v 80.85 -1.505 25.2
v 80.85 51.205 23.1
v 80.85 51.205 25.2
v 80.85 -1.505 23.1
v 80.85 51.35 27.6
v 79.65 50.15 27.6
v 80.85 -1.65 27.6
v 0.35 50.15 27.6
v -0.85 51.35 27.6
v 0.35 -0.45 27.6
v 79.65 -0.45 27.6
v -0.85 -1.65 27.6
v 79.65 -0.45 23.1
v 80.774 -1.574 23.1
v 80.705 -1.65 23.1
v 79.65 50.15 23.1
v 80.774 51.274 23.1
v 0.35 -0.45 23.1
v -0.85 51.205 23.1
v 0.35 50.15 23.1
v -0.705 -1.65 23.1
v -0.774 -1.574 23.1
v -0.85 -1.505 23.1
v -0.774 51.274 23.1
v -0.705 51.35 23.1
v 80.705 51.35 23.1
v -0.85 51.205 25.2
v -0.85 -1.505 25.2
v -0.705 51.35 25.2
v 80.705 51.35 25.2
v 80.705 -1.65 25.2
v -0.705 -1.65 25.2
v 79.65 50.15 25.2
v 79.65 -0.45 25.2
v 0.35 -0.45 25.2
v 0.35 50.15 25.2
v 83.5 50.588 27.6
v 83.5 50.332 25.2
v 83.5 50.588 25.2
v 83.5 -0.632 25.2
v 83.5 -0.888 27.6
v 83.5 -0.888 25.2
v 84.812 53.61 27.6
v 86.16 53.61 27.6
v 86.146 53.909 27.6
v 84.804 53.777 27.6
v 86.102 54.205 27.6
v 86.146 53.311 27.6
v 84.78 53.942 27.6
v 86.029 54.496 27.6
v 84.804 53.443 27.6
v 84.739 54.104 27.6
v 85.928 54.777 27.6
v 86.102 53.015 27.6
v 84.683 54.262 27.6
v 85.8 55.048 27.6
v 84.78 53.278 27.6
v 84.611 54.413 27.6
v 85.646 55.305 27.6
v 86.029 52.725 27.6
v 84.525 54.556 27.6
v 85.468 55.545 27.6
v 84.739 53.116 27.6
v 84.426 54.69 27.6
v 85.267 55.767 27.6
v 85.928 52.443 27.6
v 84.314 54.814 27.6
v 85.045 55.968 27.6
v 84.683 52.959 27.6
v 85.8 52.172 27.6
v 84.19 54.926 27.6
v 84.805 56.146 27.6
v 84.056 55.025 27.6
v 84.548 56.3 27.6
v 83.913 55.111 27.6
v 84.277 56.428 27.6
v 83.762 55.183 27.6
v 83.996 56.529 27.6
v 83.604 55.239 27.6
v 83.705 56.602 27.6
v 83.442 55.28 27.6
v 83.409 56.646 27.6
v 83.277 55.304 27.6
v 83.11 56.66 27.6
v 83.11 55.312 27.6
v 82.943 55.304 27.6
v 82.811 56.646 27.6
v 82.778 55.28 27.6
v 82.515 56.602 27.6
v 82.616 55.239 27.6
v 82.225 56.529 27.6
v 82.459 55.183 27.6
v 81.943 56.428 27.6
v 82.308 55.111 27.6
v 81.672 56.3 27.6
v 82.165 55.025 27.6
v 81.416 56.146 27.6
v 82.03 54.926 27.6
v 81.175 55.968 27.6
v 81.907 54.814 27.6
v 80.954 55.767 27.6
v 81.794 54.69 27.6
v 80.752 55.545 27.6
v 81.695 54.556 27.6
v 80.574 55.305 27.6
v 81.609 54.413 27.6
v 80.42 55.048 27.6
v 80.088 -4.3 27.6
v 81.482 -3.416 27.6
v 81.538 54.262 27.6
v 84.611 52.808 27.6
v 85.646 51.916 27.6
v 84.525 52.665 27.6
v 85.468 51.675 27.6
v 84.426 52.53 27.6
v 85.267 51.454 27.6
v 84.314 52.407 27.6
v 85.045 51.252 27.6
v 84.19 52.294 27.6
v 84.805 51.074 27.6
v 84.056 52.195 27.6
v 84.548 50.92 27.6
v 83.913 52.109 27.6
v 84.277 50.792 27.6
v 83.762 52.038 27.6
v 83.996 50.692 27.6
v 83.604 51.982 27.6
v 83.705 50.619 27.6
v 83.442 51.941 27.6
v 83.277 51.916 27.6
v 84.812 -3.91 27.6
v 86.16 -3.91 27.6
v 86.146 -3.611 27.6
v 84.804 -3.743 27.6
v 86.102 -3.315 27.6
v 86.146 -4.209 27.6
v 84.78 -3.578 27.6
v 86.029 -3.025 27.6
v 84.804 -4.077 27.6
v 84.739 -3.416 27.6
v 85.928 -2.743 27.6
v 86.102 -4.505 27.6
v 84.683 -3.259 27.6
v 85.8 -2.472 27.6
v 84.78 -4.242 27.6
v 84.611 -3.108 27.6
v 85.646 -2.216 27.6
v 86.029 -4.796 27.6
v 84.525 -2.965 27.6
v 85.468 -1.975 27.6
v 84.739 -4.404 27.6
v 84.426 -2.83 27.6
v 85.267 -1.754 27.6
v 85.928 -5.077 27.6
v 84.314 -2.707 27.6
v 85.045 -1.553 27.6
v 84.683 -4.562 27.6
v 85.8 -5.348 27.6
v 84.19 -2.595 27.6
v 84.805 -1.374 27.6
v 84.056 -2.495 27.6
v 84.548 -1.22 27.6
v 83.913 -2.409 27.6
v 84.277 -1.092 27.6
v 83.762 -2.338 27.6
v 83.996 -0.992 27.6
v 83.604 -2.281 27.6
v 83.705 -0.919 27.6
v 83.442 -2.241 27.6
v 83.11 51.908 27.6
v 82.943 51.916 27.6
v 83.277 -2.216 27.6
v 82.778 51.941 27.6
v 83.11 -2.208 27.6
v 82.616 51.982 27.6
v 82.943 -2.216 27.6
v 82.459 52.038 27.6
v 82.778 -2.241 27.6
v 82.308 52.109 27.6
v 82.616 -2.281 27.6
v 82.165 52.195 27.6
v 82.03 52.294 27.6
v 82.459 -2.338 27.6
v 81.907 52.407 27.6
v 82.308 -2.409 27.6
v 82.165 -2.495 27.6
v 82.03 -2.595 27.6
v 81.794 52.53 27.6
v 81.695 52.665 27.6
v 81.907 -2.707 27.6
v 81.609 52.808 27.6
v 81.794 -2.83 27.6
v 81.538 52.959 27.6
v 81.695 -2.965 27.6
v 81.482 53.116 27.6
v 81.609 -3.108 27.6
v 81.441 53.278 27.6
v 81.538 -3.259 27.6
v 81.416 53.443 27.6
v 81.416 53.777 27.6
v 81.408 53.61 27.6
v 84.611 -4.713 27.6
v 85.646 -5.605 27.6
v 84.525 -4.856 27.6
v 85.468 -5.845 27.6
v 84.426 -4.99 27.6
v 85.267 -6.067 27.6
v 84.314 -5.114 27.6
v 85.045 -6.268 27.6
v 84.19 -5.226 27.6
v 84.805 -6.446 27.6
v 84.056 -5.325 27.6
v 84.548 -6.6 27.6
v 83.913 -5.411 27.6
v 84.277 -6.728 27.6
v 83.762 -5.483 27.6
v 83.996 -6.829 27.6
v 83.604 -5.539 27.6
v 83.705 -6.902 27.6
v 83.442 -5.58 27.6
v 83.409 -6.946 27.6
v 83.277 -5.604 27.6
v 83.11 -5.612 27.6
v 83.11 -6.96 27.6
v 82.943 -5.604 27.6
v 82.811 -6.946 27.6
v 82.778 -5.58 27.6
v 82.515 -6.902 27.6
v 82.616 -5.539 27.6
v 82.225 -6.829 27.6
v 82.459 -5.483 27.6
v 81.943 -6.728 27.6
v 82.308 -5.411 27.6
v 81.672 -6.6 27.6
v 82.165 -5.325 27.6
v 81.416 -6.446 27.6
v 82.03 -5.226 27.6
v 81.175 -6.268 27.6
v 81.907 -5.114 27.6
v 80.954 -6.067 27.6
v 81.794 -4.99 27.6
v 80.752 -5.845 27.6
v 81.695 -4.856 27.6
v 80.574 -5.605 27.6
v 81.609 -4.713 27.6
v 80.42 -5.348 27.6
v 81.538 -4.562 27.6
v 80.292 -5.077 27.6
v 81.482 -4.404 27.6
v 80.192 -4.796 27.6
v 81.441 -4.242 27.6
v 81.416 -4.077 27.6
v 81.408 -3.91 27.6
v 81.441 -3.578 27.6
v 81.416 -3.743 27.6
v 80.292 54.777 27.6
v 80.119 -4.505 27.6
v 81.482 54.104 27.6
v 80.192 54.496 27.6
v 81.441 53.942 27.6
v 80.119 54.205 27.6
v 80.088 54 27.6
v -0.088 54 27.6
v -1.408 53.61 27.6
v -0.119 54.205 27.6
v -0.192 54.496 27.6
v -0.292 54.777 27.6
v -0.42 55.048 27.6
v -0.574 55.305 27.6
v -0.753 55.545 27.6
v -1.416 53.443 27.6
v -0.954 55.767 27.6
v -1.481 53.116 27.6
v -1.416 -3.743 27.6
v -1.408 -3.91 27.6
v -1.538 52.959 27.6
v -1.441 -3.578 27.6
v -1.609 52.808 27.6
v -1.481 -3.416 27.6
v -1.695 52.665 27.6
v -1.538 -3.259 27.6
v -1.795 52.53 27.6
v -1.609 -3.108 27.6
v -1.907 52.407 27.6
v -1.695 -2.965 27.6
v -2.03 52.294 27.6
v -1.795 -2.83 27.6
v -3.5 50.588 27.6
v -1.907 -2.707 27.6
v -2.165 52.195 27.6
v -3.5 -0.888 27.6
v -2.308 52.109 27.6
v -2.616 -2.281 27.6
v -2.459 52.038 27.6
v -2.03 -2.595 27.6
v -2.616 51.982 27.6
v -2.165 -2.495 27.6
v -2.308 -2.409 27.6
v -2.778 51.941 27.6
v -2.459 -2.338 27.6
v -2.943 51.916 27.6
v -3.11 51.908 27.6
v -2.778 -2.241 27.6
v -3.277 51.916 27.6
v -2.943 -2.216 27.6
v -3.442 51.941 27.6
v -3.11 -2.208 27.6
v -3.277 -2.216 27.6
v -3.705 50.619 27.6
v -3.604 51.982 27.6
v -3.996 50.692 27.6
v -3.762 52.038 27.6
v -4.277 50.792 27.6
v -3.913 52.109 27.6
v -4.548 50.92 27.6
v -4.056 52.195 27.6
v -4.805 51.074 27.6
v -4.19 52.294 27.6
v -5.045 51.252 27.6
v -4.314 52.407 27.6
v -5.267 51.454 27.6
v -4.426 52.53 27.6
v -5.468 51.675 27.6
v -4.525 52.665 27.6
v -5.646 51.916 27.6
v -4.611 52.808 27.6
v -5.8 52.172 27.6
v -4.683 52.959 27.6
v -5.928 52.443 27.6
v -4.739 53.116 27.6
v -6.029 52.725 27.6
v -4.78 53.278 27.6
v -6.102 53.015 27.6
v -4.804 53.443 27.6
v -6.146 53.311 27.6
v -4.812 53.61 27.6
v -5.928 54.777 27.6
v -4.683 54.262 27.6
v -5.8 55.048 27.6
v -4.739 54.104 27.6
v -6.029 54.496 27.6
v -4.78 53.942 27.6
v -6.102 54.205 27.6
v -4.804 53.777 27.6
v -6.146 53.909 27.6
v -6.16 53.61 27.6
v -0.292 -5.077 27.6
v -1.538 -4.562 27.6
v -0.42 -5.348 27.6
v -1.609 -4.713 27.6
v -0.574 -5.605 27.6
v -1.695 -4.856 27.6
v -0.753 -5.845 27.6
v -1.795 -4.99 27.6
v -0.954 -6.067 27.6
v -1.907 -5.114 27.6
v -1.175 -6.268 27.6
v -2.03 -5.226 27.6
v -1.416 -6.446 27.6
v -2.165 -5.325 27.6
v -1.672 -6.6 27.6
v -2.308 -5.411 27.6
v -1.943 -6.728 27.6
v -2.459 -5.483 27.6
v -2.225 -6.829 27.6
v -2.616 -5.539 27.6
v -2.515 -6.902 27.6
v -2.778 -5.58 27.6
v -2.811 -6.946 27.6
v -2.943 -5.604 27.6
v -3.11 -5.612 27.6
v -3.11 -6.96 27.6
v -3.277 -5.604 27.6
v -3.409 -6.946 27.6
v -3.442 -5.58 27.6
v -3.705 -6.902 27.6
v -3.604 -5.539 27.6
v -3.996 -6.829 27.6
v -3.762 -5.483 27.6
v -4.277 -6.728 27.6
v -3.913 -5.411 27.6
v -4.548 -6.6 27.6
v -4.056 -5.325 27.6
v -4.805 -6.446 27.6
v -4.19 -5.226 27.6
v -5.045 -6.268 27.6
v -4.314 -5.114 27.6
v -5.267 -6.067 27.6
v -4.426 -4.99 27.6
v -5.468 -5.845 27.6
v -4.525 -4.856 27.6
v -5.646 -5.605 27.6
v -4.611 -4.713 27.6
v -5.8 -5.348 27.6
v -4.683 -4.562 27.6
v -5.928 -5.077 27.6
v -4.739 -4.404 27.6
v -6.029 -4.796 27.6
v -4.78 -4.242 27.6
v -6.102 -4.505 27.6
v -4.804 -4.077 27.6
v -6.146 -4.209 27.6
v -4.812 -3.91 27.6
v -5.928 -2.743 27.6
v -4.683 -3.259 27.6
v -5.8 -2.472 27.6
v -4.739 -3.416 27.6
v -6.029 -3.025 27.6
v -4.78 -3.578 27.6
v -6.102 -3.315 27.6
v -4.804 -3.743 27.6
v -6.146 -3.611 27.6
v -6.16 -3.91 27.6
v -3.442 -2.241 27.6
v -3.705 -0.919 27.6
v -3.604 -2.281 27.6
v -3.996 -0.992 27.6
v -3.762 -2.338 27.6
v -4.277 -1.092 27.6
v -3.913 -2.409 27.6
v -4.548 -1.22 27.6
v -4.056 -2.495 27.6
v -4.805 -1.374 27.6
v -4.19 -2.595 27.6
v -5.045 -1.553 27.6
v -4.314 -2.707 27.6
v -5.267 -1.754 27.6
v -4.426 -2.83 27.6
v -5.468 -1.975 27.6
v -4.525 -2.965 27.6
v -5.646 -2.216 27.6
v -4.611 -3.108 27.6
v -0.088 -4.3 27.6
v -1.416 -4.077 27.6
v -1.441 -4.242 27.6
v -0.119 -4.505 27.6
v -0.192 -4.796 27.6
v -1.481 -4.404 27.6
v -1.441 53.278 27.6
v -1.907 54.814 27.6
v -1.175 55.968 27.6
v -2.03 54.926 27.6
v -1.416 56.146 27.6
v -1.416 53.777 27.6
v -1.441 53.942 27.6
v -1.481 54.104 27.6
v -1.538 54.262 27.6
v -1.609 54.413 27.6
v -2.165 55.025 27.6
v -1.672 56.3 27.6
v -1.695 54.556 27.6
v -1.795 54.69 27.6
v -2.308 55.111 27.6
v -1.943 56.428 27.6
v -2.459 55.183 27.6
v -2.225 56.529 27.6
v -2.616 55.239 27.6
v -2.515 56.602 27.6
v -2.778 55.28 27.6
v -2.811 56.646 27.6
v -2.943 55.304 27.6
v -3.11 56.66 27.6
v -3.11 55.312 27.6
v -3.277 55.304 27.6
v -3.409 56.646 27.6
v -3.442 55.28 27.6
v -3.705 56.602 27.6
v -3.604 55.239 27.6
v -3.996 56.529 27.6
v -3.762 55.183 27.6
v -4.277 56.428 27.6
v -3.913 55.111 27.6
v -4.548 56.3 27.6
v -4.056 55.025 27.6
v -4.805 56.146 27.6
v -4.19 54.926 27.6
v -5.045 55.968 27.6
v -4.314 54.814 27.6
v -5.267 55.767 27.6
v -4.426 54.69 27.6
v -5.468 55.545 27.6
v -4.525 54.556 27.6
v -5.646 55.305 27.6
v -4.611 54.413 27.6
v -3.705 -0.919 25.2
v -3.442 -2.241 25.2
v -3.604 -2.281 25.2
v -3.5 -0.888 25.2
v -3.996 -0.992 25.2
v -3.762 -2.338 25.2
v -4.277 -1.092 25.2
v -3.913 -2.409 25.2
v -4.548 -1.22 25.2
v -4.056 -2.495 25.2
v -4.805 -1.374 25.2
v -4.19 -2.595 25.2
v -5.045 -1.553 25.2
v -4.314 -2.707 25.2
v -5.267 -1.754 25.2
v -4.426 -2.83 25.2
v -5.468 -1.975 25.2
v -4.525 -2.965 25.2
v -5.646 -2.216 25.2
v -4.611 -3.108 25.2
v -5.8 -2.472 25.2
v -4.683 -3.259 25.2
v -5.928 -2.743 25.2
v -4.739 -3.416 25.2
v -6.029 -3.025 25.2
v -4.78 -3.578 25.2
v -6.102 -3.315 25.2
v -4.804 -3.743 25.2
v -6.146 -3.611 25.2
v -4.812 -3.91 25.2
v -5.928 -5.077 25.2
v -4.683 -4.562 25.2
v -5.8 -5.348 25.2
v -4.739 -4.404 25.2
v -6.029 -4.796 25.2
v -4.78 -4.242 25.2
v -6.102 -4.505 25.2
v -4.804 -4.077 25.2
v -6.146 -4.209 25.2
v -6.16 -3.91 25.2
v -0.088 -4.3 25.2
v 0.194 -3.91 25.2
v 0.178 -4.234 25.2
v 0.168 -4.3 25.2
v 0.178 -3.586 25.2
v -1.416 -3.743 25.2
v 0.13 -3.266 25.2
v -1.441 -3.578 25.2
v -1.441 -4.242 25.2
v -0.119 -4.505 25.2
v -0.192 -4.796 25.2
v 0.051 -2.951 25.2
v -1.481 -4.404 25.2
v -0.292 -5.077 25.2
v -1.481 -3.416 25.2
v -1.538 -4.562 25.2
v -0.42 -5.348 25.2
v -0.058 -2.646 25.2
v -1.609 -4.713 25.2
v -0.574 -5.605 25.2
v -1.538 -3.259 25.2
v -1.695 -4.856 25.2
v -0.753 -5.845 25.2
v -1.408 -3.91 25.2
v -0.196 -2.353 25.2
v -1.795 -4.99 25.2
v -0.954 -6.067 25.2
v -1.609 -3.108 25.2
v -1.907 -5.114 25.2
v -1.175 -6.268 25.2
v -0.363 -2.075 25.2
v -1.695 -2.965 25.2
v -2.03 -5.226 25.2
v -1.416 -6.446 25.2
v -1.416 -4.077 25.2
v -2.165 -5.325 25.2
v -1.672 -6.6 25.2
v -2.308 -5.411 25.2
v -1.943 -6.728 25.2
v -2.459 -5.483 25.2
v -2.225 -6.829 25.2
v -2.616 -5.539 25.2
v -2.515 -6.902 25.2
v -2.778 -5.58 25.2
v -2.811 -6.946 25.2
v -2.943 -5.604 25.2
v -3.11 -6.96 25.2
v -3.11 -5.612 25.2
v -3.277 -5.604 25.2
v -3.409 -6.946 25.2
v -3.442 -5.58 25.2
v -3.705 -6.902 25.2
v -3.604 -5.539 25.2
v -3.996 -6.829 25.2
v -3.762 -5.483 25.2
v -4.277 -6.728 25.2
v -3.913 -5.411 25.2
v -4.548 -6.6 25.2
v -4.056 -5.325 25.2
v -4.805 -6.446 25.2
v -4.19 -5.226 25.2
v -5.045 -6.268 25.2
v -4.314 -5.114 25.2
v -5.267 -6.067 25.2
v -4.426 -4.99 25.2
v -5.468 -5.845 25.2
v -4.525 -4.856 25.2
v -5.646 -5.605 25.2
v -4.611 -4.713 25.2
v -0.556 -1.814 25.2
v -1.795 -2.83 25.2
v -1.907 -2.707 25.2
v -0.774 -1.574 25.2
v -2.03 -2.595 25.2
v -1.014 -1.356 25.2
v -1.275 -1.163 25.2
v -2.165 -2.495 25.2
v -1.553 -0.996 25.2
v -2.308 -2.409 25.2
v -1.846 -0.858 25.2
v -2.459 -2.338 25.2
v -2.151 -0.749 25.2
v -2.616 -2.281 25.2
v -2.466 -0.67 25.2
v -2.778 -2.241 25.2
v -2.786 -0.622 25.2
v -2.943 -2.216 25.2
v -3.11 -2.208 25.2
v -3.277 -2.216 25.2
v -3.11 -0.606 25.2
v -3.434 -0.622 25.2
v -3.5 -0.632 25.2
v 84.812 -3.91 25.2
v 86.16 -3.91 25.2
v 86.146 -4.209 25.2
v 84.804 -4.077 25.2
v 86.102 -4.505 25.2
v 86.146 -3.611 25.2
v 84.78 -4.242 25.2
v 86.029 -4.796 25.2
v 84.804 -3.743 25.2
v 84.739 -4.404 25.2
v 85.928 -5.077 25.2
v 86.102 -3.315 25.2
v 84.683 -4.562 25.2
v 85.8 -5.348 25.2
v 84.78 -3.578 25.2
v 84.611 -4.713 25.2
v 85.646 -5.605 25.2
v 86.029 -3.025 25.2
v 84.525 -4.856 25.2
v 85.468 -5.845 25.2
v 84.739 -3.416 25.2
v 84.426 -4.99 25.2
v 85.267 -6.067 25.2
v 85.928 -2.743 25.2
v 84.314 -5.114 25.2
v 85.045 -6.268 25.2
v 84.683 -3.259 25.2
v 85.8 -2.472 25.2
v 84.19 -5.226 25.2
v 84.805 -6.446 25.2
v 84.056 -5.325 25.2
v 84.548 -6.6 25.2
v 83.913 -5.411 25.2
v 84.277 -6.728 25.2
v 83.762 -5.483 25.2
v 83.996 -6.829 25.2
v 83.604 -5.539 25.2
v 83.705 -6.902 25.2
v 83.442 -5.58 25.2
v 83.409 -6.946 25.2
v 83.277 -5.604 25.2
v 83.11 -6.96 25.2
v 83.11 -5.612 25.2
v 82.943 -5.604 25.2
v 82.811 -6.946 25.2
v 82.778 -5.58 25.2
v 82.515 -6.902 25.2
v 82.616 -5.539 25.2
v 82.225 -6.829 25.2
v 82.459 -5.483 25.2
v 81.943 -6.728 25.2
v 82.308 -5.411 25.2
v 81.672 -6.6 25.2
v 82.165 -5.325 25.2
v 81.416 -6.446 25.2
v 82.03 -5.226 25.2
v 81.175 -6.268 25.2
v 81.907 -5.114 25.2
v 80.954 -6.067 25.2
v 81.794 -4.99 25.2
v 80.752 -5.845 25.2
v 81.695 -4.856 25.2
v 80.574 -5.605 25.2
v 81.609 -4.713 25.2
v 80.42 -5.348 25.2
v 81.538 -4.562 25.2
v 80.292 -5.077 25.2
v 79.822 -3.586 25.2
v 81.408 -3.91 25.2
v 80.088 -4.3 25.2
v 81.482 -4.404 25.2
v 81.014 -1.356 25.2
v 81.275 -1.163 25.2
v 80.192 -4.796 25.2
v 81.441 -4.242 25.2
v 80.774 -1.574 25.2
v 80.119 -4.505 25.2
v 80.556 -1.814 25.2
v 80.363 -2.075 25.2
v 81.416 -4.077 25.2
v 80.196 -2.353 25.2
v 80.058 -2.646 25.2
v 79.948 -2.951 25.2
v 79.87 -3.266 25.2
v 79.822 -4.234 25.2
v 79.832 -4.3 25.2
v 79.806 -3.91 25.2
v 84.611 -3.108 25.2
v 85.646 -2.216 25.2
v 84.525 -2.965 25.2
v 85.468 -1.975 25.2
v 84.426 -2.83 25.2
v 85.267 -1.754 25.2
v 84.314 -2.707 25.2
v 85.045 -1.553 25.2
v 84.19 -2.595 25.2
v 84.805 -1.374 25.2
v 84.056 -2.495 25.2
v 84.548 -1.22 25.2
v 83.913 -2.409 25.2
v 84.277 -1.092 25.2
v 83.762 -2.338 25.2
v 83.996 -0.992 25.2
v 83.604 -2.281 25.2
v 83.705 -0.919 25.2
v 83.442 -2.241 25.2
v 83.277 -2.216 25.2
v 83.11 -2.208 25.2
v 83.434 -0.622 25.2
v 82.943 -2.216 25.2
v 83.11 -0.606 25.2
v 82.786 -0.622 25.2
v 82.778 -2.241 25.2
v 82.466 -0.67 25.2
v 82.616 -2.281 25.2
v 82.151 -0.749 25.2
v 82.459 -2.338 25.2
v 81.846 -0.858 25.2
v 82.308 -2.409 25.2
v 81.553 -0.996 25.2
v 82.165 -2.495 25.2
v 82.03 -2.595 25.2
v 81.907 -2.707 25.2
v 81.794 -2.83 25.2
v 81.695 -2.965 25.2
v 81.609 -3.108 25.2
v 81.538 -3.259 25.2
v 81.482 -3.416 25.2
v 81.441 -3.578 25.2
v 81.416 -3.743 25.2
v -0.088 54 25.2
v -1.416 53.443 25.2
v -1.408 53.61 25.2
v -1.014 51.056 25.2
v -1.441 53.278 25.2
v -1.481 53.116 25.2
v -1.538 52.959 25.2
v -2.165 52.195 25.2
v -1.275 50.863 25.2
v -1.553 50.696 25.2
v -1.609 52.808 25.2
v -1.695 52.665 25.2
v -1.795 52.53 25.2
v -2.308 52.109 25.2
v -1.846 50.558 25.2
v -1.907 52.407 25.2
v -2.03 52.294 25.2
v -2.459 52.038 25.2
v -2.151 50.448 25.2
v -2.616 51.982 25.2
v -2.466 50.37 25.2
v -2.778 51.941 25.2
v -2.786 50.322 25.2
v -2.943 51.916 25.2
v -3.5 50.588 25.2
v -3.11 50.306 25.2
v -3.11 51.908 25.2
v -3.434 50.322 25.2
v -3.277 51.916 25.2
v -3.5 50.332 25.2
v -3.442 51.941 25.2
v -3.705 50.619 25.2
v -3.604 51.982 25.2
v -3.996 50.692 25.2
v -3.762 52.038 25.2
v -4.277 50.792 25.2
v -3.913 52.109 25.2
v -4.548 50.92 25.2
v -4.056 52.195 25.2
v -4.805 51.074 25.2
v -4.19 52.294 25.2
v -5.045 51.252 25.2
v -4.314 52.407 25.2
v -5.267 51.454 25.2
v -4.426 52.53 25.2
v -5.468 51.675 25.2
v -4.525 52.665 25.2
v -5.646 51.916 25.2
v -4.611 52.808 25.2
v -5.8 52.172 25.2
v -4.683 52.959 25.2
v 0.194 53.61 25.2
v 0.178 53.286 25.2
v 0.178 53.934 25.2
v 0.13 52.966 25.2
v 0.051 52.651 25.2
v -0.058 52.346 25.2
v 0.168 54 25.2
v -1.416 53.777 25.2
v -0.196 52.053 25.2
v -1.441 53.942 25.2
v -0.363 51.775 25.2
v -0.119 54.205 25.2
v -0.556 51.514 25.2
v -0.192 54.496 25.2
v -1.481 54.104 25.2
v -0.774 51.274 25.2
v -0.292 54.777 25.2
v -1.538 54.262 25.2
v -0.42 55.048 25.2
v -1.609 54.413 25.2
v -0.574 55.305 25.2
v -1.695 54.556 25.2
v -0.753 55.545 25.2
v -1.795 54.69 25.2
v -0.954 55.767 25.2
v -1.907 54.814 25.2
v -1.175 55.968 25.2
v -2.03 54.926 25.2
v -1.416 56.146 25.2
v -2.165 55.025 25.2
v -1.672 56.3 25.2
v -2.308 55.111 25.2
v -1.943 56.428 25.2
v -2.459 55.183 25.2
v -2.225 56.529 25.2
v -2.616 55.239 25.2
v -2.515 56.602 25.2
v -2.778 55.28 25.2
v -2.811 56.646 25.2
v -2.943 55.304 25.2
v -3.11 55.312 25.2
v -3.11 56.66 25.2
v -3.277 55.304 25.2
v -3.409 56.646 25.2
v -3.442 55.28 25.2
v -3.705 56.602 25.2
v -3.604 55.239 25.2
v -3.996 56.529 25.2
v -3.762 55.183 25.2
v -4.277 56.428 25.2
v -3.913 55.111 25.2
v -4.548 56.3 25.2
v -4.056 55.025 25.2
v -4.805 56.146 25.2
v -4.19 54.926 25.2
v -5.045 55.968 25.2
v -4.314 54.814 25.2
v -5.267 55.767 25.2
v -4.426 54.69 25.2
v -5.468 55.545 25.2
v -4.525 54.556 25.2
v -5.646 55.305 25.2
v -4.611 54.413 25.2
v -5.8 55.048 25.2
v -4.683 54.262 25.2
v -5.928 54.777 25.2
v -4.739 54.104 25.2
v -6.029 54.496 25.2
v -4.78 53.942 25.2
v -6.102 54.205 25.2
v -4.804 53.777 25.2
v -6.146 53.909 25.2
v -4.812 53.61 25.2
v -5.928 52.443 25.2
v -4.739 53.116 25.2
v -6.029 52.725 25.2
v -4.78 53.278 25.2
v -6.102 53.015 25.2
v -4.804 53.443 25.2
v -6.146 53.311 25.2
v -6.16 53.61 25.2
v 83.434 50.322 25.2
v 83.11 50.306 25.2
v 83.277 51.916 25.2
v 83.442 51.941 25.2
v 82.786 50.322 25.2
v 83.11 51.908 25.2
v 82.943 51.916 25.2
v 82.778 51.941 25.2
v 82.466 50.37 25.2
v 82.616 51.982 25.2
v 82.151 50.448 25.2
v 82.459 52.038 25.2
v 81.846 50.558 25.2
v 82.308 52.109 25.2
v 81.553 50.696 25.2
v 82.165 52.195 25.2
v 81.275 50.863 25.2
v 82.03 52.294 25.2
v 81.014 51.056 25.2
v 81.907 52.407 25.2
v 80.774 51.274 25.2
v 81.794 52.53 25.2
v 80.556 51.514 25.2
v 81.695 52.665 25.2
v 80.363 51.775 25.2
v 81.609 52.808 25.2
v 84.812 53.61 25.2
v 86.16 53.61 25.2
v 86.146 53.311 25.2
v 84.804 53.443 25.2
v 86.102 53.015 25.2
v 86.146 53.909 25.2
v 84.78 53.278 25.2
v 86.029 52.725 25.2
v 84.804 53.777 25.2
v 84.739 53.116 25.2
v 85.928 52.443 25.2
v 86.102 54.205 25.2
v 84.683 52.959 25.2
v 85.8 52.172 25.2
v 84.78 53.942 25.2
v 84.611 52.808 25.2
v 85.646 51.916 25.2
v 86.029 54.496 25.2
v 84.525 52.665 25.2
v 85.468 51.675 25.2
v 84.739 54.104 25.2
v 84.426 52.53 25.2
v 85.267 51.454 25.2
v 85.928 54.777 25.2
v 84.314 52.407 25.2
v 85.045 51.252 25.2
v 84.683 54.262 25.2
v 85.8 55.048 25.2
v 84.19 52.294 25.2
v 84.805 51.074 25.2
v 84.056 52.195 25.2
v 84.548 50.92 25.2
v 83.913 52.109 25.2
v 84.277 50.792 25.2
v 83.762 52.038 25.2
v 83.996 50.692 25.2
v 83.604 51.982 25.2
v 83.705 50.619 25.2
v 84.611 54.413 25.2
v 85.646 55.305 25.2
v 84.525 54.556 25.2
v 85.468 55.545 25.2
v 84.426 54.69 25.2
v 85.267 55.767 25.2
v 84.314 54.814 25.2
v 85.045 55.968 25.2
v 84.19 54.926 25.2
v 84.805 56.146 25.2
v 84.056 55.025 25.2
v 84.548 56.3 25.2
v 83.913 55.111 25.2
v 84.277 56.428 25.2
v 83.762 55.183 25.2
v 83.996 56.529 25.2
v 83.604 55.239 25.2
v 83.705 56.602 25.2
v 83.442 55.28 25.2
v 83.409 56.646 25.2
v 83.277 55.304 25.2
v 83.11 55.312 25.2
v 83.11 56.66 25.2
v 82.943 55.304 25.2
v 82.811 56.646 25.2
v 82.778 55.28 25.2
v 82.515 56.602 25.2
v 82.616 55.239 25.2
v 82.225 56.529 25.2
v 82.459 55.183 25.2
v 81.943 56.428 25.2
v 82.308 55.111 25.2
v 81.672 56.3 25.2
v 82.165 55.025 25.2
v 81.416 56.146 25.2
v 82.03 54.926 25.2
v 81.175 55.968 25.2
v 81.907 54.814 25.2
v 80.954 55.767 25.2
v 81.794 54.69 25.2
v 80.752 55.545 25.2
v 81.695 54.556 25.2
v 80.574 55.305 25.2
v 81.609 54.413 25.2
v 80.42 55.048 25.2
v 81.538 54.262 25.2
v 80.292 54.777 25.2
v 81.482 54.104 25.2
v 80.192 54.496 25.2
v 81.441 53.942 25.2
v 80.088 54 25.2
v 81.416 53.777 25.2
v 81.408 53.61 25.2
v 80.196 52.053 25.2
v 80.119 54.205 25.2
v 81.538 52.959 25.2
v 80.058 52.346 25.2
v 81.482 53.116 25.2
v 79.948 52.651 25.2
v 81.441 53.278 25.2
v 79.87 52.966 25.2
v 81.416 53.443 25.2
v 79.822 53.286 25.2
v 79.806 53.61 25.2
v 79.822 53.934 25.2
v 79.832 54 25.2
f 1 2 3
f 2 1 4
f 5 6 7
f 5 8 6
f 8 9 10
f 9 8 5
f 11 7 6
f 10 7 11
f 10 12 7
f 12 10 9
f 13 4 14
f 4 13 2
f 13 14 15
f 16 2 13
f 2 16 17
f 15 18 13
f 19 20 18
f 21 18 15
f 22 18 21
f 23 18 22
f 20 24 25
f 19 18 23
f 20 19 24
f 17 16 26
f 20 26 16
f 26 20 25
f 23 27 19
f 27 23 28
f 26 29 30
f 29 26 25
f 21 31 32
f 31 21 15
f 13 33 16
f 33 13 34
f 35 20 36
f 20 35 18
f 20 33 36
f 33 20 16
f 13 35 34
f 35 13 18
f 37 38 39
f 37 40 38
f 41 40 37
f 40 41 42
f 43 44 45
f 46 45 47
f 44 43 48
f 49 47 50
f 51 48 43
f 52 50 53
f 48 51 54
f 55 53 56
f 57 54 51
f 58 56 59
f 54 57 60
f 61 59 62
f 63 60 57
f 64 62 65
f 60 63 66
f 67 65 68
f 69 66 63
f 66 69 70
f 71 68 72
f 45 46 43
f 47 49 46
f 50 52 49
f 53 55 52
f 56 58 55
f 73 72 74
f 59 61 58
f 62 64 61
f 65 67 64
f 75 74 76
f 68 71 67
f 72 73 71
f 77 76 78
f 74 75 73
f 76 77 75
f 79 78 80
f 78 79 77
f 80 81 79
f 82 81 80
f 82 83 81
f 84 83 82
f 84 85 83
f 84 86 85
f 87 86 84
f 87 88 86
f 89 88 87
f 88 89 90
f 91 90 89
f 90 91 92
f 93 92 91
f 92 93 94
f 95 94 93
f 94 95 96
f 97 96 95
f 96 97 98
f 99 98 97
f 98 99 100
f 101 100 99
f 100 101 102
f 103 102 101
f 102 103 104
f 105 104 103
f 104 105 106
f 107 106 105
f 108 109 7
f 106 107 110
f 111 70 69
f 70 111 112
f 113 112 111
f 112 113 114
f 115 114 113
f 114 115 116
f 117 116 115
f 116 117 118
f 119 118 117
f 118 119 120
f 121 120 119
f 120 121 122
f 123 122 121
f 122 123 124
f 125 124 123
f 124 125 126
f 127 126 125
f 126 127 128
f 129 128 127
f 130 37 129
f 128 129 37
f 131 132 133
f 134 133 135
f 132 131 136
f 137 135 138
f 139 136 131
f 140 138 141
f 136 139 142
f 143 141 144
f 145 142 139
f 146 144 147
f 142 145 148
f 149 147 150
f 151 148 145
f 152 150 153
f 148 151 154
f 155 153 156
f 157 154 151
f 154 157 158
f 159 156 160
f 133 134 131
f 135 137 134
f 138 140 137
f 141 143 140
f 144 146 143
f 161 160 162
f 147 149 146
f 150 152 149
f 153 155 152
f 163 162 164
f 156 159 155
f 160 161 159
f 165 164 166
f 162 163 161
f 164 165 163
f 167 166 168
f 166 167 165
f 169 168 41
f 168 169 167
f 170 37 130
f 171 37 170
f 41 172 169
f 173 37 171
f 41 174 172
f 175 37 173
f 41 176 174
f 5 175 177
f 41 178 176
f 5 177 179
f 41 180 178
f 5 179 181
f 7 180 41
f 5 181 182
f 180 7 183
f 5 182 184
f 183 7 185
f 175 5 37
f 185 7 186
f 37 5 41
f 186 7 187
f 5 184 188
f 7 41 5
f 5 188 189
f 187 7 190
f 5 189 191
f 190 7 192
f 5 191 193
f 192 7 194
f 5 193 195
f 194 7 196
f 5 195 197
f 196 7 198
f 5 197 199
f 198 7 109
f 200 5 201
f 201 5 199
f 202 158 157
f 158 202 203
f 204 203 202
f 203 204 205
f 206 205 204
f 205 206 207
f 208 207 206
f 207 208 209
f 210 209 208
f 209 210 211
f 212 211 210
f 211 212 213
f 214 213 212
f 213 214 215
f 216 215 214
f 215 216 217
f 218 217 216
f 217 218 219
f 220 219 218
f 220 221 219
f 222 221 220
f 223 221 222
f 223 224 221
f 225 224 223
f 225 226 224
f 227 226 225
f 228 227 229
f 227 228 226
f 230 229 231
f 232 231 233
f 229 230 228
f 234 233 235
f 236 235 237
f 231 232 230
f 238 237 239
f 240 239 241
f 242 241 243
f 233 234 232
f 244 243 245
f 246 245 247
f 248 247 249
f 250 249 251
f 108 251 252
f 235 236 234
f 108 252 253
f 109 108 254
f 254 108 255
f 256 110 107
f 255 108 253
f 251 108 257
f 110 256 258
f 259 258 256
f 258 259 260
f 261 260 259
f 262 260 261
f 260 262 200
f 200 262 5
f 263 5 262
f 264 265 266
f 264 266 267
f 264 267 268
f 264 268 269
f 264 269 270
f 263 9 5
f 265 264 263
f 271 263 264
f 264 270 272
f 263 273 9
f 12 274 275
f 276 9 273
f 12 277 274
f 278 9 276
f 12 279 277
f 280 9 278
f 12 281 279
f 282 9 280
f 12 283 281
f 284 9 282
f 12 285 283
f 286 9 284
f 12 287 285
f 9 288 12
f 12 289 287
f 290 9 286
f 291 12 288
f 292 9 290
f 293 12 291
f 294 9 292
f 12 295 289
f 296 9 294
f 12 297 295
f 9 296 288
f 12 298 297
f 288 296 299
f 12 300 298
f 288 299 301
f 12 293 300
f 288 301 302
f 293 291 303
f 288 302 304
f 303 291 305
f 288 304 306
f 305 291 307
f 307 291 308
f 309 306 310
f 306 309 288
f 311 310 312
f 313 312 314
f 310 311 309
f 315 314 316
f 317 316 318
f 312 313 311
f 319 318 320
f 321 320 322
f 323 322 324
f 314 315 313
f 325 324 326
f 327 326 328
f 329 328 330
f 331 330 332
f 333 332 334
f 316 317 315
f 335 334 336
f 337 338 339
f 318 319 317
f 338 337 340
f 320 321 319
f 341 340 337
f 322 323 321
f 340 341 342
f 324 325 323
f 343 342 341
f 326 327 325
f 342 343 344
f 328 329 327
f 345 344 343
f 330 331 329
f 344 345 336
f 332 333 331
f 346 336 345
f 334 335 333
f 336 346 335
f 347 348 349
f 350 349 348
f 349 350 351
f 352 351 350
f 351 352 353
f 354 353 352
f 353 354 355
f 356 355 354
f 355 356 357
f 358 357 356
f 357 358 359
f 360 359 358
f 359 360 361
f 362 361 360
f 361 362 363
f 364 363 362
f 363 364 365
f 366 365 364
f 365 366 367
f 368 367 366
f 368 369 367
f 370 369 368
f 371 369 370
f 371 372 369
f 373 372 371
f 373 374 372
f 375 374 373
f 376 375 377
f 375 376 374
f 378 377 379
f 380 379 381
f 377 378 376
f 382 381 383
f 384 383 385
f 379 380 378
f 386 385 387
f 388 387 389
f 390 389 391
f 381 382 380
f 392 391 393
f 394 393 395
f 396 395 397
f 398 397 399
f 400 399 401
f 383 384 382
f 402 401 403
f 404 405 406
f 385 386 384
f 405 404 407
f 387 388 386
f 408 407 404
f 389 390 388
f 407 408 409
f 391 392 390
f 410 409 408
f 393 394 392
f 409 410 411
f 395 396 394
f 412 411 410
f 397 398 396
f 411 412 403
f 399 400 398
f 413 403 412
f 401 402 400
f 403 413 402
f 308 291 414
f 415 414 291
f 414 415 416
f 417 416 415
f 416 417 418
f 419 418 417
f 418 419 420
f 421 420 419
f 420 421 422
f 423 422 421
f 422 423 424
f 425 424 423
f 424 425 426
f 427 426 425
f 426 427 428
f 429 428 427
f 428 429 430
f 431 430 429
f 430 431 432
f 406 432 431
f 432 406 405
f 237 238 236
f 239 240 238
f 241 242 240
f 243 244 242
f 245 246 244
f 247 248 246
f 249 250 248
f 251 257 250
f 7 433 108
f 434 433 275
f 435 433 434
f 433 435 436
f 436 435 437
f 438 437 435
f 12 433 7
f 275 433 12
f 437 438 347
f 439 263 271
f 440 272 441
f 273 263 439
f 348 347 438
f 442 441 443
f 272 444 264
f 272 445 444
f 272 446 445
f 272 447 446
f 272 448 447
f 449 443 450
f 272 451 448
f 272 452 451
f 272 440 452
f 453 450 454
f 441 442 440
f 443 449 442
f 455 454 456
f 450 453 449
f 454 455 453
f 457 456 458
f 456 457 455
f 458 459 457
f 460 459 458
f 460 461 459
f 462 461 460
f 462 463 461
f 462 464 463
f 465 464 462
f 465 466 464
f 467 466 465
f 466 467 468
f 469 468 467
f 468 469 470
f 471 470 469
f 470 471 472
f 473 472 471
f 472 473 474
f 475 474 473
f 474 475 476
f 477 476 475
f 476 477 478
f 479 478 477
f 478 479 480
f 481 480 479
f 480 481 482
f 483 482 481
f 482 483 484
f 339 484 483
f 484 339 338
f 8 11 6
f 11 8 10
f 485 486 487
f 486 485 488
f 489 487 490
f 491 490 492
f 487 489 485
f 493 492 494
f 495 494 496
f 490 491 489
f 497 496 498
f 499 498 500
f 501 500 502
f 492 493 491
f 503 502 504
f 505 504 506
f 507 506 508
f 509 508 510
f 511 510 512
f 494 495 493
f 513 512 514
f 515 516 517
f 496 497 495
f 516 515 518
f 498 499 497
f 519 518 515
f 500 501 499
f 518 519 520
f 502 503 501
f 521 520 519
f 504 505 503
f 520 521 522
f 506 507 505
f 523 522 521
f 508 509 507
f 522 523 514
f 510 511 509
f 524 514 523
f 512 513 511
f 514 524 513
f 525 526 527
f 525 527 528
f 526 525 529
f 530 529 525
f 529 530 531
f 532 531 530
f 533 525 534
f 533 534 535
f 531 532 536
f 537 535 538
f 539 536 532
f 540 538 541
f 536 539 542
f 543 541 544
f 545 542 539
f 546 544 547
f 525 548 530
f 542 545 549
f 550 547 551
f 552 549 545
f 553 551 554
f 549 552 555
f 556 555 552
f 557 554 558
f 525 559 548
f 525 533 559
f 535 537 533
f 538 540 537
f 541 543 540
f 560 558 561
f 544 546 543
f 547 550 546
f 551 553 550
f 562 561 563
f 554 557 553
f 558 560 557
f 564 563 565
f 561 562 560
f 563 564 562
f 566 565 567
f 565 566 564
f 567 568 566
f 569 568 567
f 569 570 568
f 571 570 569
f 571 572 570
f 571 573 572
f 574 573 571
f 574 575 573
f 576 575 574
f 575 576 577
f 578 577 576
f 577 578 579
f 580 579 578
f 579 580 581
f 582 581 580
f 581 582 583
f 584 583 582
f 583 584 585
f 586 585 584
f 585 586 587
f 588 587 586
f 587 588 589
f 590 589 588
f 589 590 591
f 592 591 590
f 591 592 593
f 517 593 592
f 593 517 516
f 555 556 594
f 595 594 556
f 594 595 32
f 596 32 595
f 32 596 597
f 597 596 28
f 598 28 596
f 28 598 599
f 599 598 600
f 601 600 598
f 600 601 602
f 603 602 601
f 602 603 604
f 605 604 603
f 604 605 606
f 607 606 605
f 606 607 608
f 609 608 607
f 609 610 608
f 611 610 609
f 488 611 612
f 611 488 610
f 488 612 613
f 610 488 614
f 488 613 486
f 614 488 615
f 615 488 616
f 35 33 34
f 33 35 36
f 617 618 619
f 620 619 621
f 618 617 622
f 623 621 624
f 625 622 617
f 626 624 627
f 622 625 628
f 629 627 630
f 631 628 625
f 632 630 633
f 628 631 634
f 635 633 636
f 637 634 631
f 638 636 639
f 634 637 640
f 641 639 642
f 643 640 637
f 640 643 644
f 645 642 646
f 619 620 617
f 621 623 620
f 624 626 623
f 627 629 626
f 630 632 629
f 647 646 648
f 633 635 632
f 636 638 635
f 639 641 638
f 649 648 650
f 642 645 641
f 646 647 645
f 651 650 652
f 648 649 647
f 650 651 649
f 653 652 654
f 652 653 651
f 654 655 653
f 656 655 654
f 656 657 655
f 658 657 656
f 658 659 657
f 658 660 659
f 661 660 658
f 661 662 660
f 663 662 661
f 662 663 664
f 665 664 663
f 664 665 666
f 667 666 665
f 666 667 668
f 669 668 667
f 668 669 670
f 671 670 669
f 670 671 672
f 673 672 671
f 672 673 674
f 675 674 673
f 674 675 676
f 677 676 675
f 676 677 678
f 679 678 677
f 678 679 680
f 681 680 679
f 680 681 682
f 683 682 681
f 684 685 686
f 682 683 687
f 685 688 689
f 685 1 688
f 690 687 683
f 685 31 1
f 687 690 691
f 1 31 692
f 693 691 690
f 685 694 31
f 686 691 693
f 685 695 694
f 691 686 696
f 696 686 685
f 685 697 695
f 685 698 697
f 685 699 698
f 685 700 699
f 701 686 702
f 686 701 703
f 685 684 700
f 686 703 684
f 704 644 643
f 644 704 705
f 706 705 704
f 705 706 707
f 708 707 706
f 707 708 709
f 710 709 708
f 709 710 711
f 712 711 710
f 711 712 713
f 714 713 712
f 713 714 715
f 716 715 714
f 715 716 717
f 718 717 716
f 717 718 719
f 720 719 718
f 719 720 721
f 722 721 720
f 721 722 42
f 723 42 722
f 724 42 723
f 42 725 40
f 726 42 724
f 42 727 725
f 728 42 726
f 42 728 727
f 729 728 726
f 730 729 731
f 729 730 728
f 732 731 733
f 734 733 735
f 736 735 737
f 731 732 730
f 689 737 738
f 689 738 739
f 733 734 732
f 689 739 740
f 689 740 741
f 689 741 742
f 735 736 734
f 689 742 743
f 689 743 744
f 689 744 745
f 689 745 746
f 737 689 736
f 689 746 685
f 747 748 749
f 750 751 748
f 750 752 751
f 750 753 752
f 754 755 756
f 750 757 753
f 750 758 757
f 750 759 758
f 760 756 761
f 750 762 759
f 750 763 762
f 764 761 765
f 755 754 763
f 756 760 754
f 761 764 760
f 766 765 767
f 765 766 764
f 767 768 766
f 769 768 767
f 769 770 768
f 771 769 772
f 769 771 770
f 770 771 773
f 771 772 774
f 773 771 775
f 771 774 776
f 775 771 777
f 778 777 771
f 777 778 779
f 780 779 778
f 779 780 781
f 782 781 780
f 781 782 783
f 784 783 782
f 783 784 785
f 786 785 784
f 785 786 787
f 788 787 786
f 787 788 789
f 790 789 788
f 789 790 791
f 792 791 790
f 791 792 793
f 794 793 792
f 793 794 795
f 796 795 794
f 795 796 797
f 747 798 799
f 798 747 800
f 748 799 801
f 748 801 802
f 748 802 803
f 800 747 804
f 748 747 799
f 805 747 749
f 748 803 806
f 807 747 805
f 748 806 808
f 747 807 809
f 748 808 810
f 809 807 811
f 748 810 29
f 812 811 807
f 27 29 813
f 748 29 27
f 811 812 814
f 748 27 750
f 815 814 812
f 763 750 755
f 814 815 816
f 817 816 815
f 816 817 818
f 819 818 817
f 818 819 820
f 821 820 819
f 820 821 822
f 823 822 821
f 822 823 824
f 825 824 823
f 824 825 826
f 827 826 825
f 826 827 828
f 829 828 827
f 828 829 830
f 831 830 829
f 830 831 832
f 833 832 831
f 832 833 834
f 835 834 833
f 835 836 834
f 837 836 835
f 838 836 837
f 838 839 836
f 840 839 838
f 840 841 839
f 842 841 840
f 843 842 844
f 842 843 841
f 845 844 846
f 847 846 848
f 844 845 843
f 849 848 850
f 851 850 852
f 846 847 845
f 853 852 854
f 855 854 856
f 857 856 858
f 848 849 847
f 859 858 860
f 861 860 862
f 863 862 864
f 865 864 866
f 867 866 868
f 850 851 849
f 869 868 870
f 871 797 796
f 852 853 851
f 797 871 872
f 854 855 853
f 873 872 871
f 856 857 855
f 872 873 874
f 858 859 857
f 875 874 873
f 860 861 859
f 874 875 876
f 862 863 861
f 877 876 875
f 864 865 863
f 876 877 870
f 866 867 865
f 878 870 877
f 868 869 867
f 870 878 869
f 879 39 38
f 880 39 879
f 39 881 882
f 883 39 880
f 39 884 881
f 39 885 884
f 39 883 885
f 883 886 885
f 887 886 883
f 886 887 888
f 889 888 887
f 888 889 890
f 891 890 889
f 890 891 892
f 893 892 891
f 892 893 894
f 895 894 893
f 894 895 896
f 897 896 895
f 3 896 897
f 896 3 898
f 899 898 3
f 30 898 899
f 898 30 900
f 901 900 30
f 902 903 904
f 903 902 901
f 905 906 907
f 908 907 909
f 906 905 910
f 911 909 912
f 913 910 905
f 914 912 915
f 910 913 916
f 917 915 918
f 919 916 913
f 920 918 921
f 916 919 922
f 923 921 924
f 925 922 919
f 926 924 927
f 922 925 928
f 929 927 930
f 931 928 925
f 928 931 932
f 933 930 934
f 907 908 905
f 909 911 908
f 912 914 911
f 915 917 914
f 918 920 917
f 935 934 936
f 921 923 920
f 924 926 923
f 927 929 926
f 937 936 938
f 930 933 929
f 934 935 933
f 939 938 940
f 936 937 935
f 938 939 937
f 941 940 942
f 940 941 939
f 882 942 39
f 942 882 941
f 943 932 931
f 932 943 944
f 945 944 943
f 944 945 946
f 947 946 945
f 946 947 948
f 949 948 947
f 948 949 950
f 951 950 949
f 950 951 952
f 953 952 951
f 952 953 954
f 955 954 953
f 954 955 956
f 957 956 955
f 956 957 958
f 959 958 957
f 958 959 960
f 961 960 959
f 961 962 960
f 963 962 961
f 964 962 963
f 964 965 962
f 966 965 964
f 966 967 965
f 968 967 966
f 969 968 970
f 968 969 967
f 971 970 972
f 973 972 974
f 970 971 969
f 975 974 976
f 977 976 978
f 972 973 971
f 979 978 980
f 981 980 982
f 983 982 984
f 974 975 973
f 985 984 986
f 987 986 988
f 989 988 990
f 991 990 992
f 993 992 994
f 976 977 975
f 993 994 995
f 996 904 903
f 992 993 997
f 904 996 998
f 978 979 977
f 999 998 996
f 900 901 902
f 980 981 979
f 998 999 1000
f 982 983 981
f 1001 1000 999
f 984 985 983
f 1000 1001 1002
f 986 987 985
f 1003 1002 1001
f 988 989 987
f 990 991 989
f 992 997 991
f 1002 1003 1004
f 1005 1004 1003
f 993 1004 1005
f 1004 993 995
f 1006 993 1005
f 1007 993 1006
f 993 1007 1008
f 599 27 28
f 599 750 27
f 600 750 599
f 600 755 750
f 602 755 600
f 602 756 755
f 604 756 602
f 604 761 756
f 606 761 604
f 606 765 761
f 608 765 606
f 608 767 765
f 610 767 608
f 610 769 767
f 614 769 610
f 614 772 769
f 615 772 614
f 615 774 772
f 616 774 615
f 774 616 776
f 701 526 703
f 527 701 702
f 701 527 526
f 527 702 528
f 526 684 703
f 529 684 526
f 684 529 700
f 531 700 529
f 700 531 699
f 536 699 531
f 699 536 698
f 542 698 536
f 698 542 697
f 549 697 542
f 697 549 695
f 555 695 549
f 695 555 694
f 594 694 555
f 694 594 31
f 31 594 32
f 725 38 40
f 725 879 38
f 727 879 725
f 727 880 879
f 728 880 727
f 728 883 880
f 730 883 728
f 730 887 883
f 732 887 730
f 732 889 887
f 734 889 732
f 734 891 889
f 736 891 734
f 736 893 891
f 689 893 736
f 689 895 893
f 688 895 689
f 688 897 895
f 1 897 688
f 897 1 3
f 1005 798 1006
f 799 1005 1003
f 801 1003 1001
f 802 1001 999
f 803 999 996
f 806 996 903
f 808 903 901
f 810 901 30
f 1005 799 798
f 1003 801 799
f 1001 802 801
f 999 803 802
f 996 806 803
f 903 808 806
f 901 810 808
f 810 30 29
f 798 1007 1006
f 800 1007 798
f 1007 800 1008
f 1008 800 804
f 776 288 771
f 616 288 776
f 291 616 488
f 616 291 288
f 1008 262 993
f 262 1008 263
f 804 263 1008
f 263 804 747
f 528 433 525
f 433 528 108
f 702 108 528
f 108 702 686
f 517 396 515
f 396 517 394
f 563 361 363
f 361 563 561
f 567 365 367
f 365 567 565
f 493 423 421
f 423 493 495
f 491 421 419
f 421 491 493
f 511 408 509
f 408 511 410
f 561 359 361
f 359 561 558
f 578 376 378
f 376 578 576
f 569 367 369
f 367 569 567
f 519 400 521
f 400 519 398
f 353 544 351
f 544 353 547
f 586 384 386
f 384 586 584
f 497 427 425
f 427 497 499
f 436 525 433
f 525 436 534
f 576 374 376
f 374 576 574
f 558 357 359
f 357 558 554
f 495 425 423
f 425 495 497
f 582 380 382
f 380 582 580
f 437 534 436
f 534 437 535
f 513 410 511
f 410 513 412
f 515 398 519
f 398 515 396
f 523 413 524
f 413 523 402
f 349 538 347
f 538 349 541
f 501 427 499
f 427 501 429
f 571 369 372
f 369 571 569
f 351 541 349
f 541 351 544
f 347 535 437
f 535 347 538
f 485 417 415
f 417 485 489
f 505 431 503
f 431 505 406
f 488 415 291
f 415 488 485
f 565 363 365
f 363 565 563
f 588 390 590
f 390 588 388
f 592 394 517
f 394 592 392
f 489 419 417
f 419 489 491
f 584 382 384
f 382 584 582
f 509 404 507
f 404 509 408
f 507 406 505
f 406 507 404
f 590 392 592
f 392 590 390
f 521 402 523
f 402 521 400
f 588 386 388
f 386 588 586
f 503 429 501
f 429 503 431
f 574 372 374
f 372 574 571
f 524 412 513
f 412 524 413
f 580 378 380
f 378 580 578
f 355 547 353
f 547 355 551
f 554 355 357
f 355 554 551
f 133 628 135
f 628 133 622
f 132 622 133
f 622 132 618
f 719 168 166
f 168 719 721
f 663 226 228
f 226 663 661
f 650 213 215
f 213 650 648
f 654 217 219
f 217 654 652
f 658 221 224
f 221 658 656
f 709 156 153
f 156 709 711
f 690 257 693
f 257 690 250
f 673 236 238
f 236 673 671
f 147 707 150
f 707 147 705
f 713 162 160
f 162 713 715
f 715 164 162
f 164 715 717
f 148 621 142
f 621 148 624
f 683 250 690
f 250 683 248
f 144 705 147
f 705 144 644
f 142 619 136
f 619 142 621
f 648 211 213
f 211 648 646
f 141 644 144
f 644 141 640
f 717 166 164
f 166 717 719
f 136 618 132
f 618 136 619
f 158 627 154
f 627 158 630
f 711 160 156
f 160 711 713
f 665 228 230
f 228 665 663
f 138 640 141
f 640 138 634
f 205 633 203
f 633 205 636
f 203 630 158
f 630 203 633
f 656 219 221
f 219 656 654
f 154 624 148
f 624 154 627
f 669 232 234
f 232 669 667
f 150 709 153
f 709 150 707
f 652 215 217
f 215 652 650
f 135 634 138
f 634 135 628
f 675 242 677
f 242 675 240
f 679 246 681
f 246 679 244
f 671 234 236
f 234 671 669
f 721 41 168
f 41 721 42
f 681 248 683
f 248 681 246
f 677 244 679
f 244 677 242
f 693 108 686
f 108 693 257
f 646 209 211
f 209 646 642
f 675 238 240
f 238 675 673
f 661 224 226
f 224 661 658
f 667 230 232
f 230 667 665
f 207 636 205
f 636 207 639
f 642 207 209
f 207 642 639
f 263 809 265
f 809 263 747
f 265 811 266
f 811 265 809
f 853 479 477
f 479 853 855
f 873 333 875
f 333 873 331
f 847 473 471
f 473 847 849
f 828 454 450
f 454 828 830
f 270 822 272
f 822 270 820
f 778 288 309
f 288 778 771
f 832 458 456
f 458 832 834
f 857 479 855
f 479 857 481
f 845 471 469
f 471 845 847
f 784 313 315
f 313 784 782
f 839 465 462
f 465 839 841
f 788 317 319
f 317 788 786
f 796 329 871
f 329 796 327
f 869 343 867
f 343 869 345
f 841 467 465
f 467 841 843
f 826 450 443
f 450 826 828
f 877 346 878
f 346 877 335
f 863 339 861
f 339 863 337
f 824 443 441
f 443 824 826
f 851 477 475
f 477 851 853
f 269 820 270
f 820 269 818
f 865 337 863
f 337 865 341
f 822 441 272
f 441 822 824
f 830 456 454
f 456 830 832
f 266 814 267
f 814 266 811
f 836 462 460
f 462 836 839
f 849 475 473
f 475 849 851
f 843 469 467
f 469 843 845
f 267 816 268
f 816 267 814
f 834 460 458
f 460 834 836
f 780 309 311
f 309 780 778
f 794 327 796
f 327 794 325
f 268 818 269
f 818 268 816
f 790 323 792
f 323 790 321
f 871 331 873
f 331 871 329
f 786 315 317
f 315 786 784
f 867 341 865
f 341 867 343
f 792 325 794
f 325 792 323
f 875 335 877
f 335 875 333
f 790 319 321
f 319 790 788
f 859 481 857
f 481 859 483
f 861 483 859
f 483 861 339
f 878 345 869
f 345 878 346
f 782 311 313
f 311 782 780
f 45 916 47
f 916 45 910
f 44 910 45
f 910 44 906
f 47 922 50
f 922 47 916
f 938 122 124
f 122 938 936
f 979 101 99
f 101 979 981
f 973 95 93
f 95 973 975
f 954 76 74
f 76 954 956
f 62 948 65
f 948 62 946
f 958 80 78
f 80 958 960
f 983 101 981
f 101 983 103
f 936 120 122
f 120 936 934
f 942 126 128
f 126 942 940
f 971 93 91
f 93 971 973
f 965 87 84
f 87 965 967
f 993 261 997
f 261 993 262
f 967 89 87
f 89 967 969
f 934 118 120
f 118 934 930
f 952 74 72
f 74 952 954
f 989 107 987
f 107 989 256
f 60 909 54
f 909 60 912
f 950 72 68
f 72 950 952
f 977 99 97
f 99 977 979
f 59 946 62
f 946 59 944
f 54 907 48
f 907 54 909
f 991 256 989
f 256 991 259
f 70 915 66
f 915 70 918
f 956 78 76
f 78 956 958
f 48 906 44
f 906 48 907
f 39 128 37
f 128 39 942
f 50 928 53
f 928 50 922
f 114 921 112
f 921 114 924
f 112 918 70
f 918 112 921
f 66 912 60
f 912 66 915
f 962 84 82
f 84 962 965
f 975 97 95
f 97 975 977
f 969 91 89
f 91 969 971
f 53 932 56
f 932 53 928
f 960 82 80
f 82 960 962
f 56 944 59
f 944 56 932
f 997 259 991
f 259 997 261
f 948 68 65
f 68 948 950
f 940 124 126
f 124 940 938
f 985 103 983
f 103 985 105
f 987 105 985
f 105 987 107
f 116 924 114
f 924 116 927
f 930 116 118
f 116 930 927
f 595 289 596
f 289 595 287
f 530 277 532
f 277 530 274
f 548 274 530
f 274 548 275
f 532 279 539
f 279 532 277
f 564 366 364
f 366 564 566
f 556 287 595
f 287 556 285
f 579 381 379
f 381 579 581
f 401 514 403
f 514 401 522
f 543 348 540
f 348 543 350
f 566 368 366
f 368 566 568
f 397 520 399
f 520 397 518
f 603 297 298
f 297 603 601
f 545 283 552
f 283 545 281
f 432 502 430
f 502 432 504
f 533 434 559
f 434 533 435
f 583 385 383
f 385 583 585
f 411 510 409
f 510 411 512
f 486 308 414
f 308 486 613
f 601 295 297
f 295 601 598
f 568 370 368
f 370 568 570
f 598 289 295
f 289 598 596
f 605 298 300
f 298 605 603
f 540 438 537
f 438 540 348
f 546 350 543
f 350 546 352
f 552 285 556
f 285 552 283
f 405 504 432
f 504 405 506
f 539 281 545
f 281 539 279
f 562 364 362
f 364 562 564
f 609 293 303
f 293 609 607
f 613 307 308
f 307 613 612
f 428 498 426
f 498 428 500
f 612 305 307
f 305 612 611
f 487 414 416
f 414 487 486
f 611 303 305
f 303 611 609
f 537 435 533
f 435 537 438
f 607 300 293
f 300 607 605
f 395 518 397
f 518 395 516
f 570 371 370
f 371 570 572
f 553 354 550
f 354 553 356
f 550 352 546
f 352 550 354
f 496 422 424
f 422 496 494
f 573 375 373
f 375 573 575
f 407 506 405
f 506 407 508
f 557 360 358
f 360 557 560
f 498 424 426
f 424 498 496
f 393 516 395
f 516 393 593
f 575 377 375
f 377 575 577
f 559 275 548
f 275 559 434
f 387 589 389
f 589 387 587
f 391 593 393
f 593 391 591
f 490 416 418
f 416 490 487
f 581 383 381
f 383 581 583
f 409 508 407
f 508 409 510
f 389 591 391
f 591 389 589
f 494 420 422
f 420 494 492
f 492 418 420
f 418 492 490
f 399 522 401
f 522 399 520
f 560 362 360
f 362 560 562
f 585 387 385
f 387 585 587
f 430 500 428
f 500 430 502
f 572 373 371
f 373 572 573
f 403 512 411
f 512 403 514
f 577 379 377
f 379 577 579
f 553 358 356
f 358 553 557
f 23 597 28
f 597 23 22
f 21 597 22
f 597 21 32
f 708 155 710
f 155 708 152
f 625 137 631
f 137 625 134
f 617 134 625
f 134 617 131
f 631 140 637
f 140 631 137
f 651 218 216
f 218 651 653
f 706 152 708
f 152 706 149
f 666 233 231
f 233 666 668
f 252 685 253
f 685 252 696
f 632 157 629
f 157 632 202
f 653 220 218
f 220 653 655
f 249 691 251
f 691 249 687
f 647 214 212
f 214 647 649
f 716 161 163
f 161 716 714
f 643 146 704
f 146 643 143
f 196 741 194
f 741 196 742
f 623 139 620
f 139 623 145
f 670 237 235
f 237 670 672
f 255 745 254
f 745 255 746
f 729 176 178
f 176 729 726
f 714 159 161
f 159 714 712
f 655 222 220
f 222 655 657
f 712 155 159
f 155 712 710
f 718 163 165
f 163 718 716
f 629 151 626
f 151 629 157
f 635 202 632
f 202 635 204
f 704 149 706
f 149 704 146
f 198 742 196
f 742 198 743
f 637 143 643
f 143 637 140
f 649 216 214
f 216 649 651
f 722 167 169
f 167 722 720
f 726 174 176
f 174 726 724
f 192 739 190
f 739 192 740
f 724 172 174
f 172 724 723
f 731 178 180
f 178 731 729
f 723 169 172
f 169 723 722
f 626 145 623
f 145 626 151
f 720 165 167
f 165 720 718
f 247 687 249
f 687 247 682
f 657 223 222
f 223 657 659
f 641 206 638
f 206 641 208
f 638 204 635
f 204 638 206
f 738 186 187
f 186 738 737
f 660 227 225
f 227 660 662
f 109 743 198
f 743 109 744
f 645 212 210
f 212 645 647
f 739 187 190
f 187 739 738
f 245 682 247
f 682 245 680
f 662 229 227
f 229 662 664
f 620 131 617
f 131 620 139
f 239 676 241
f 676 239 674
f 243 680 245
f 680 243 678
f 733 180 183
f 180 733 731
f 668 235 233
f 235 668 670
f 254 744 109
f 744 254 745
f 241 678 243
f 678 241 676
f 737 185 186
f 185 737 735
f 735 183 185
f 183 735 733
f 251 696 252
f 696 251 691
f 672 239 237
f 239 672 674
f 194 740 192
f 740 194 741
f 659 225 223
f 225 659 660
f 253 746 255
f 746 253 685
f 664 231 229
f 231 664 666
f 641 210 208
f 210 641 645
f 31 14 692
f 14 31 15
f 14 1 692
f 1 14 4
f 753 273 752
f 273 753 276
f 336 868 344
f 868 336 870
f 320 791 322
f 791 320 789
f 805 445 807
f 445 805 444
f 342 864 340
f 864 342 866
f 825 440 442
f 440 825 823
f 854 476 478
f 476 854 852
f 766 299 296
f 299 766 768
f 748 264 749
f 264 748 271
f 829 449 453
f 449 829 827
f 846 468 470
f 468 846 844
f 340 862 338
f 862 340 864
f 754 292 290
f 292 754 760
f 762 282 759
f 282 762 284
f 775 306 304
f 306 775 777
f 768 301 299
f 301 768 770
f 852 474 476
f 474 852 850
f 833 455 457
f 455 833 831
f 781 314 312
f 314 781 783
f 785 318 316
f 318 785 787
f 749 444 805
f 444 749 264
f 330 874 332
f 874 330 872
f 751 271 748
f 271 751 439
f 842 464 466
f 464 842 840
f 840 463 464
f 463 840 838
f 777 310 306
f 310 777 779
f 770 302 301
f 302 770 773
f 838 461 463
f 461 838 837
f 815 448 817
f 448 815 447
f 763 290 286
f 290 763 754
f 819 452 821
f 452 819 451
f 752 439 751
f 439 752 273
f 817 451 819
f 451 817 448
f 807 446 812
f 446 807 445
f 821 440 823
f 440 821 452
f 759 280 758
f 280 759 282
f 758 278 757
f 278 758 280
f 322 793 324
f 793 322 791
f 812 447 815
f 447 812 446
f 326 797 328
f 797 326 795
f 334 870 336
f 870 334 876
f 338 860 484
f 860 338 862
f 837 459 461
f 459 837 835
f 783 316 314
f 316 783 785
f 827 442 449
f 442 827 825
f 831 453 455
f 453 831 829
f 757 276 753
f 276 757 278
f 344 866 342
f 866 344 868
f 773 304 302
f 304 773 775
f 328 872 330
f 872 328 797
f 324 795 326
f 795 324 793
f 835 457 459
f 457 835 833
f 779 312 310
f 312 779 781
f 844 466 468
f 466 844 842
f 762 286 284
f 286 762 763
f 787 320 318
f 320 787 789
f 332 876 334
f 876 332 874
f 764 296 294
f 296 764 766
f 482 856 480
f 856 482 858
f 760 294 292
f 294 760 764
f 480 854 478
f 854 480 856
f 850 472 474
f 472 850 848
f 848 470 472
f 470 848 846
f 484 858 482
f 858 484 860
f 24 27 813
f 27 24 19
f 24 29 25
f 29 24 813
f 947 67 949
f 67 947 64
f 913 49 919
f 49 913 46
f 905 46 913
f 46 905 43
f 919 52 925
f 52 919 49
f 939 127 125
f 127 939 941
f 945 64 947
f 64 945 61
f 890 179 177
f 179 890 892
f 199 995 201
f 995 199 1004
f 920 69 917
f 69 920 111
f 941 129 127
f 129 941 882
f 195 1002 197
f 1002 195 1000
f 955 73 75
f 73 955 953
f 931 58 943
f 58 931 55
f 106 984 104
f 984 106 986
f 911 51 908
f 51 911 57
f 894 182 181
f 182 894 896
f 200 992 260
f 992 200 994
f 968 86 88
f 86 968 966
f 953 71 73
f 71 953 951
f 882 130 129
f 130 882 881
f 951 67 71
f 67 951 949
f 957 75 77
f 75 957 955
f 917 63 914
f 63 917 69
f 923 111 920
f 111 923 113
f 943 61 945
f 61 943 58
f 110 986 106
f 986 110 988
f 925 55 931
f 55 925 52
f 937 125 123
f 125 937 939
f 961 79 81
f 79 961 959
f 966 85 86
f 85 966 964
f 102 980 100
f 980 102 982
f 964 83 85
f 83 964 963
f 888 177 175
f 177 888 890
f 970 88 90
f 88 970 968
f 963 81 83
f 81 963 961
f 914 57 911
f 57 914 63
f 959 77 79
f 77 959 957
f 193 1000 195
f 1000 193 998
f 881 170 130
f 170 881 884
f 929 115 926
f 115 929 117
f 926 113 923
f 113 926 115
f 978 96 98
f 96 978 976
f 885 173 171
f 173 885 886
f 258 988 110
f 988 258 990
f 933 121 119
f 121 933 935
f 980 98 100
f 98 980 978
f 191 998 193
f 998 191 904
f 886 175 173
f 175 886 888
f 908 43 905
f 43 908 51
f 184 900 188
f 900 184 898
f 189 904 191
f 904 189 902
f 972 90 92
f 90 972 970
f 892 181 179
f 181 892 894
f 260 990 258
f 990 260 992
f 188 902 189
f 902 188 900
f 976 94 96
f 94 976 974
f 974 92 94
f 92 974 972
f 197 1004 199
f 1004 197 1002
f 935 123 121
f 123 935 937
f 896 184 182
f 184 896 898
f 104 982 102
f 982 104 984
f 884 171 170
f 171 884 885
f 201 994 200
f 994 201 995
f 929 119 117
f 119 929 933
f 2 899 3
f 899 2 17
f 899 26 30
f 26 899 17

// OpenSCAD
// body lid
difference() {
  union() {
    // body lid (lid_plate)
    multmatrix([[1, 0, 0, 40], [0, 1, 0, 24.85], [0, 0, 1, 25.2], [0, 0, 0, 1]]) translate([-43.5, -29.15, 0]) cube([87, 58.3, 2.4]);
    // add lid_lip (lip)
    multmatrix([[1, 0, 0, 40], [0, 1, 0, 24.85], [0, 0, 1, 23.1], [0, 0, 0, 1]]) difference() { translate([-40.85, -26.5, 0]) cube([81.7, 53, 4.5]); translate([0, 0, -1]) translate([-39.65, -25.3, 0]) cube([79.3, 50.6, 6.5]); }
    // add boss_1_pad (pad)
    multmatrix([[1, 0, 0, -3.110229], [0, 1, 0, -3.910229], [0, 0, 1, 25.2], [0, 0, 0, 1]]) cylinder(h=2.4, d=6.1, $fn=64);
    // add boss_2_pad (pad)
    multmatrix([[1, 0, 0, 83.110229], [0, 1, 0, -3.910229], [0, 0, 1, 25.2], [0, 0, 0, 1]]) cylinder(h=2.4, d=6.1, $fn=64);
    // add boss_3_pad (pad)
    multmatrix([[1, 0, 0, -3.110229], [0, 1, 0, 53.610229], [0, 0, 1, 25.2], [0, 0, 0, 1]]) cylinder(h=2.4, d=6.1, $fn=64);
    // add boss_4_pad (pad)
    multmatrix([[1, 0, 0, 83.110229], [0, 1, 0, 53.610229], [0, 0, 1, 25.2], [0, 0, 0, 1]]) cylinder(h=2.4, d=6.1, $fn=64);
  }
  // cut boss_1_lid_hole (screw_hole)
  multmatrix([[1, 0, 0, -3.110229], [0, 1, 0, -3.910229], [0, 0, 1, 24.2], [0, 0, 0, 1]]) cylinder(h=4.4, d=3.4041, $fn=64);
  // cut boss_1_lip_notch (lip_notch)
  multmatrix([[1, 0, 0, -3.110229], [0, 1, 0, -3.910229], [0, 0, 1, 22.1], [0, 0, 0, 1]]) cylinder(h=3.1, d=6.60796, $fn=64);
  // cut boss_2_lid_hole (screw_hole)
  multmatrix([[1, 0, 0, 83.110229], [0, 1, 0, -3.910229], [0, 0, 1, 24.2], [0, 0, 0, 1]]) cylinder(h=4.4, d=3.4041, $fn=64);
  // cut boss_2_lip_notch (lip_notch)
  multmatrix([[1, 0, 0, 83.110229], [0, 1, 0, -3.910229], [0, 0, 1, 22.1], [0, 0, 0, 1]]) cylinder(h=3.1, d=6.60796, $fn=64);
  // cut boss_3_lid_hole (screw_hole)
  multmatrix([[1, 0, 0, -3.110229], [0, 1, 0, 53.610229], [0, 0, 1, 24.2], [0, 0, 0, 1]]) cylinder(h=4.4, d=3.4041, $fn=64);
  // cut boss_3_lip_notch (lip_notch)
  multmatrix([[1, 0, 0, -3.110229], [0, 1, 0, 53.610229], [0, 0, 1, 22.1], [0, 0, 0, 1]]) cylinder(h=3.1, d=6.60796, $fn=64);
  // cut boss_4_lid_hole (screw_hole)
  multmatrix([[1, 0, 0, 83.110229], [0, 1, 0, 53.610229], [0, 0, 1, 24.2], [0, 0, 0, 1]]) cylinder(h=4.4, d=3.4041, $fn=64);
  // cut boss_4_lip_notch (lip_notch)
  multmatrix([[1, 0, 0, 83.110229], [0, 1, 0, 53.610229], [0, 0, 1, 22.1], [0, 0, 0, 1]]) cylinder(h=3.1, d=6.60796, $fn=64);
}
